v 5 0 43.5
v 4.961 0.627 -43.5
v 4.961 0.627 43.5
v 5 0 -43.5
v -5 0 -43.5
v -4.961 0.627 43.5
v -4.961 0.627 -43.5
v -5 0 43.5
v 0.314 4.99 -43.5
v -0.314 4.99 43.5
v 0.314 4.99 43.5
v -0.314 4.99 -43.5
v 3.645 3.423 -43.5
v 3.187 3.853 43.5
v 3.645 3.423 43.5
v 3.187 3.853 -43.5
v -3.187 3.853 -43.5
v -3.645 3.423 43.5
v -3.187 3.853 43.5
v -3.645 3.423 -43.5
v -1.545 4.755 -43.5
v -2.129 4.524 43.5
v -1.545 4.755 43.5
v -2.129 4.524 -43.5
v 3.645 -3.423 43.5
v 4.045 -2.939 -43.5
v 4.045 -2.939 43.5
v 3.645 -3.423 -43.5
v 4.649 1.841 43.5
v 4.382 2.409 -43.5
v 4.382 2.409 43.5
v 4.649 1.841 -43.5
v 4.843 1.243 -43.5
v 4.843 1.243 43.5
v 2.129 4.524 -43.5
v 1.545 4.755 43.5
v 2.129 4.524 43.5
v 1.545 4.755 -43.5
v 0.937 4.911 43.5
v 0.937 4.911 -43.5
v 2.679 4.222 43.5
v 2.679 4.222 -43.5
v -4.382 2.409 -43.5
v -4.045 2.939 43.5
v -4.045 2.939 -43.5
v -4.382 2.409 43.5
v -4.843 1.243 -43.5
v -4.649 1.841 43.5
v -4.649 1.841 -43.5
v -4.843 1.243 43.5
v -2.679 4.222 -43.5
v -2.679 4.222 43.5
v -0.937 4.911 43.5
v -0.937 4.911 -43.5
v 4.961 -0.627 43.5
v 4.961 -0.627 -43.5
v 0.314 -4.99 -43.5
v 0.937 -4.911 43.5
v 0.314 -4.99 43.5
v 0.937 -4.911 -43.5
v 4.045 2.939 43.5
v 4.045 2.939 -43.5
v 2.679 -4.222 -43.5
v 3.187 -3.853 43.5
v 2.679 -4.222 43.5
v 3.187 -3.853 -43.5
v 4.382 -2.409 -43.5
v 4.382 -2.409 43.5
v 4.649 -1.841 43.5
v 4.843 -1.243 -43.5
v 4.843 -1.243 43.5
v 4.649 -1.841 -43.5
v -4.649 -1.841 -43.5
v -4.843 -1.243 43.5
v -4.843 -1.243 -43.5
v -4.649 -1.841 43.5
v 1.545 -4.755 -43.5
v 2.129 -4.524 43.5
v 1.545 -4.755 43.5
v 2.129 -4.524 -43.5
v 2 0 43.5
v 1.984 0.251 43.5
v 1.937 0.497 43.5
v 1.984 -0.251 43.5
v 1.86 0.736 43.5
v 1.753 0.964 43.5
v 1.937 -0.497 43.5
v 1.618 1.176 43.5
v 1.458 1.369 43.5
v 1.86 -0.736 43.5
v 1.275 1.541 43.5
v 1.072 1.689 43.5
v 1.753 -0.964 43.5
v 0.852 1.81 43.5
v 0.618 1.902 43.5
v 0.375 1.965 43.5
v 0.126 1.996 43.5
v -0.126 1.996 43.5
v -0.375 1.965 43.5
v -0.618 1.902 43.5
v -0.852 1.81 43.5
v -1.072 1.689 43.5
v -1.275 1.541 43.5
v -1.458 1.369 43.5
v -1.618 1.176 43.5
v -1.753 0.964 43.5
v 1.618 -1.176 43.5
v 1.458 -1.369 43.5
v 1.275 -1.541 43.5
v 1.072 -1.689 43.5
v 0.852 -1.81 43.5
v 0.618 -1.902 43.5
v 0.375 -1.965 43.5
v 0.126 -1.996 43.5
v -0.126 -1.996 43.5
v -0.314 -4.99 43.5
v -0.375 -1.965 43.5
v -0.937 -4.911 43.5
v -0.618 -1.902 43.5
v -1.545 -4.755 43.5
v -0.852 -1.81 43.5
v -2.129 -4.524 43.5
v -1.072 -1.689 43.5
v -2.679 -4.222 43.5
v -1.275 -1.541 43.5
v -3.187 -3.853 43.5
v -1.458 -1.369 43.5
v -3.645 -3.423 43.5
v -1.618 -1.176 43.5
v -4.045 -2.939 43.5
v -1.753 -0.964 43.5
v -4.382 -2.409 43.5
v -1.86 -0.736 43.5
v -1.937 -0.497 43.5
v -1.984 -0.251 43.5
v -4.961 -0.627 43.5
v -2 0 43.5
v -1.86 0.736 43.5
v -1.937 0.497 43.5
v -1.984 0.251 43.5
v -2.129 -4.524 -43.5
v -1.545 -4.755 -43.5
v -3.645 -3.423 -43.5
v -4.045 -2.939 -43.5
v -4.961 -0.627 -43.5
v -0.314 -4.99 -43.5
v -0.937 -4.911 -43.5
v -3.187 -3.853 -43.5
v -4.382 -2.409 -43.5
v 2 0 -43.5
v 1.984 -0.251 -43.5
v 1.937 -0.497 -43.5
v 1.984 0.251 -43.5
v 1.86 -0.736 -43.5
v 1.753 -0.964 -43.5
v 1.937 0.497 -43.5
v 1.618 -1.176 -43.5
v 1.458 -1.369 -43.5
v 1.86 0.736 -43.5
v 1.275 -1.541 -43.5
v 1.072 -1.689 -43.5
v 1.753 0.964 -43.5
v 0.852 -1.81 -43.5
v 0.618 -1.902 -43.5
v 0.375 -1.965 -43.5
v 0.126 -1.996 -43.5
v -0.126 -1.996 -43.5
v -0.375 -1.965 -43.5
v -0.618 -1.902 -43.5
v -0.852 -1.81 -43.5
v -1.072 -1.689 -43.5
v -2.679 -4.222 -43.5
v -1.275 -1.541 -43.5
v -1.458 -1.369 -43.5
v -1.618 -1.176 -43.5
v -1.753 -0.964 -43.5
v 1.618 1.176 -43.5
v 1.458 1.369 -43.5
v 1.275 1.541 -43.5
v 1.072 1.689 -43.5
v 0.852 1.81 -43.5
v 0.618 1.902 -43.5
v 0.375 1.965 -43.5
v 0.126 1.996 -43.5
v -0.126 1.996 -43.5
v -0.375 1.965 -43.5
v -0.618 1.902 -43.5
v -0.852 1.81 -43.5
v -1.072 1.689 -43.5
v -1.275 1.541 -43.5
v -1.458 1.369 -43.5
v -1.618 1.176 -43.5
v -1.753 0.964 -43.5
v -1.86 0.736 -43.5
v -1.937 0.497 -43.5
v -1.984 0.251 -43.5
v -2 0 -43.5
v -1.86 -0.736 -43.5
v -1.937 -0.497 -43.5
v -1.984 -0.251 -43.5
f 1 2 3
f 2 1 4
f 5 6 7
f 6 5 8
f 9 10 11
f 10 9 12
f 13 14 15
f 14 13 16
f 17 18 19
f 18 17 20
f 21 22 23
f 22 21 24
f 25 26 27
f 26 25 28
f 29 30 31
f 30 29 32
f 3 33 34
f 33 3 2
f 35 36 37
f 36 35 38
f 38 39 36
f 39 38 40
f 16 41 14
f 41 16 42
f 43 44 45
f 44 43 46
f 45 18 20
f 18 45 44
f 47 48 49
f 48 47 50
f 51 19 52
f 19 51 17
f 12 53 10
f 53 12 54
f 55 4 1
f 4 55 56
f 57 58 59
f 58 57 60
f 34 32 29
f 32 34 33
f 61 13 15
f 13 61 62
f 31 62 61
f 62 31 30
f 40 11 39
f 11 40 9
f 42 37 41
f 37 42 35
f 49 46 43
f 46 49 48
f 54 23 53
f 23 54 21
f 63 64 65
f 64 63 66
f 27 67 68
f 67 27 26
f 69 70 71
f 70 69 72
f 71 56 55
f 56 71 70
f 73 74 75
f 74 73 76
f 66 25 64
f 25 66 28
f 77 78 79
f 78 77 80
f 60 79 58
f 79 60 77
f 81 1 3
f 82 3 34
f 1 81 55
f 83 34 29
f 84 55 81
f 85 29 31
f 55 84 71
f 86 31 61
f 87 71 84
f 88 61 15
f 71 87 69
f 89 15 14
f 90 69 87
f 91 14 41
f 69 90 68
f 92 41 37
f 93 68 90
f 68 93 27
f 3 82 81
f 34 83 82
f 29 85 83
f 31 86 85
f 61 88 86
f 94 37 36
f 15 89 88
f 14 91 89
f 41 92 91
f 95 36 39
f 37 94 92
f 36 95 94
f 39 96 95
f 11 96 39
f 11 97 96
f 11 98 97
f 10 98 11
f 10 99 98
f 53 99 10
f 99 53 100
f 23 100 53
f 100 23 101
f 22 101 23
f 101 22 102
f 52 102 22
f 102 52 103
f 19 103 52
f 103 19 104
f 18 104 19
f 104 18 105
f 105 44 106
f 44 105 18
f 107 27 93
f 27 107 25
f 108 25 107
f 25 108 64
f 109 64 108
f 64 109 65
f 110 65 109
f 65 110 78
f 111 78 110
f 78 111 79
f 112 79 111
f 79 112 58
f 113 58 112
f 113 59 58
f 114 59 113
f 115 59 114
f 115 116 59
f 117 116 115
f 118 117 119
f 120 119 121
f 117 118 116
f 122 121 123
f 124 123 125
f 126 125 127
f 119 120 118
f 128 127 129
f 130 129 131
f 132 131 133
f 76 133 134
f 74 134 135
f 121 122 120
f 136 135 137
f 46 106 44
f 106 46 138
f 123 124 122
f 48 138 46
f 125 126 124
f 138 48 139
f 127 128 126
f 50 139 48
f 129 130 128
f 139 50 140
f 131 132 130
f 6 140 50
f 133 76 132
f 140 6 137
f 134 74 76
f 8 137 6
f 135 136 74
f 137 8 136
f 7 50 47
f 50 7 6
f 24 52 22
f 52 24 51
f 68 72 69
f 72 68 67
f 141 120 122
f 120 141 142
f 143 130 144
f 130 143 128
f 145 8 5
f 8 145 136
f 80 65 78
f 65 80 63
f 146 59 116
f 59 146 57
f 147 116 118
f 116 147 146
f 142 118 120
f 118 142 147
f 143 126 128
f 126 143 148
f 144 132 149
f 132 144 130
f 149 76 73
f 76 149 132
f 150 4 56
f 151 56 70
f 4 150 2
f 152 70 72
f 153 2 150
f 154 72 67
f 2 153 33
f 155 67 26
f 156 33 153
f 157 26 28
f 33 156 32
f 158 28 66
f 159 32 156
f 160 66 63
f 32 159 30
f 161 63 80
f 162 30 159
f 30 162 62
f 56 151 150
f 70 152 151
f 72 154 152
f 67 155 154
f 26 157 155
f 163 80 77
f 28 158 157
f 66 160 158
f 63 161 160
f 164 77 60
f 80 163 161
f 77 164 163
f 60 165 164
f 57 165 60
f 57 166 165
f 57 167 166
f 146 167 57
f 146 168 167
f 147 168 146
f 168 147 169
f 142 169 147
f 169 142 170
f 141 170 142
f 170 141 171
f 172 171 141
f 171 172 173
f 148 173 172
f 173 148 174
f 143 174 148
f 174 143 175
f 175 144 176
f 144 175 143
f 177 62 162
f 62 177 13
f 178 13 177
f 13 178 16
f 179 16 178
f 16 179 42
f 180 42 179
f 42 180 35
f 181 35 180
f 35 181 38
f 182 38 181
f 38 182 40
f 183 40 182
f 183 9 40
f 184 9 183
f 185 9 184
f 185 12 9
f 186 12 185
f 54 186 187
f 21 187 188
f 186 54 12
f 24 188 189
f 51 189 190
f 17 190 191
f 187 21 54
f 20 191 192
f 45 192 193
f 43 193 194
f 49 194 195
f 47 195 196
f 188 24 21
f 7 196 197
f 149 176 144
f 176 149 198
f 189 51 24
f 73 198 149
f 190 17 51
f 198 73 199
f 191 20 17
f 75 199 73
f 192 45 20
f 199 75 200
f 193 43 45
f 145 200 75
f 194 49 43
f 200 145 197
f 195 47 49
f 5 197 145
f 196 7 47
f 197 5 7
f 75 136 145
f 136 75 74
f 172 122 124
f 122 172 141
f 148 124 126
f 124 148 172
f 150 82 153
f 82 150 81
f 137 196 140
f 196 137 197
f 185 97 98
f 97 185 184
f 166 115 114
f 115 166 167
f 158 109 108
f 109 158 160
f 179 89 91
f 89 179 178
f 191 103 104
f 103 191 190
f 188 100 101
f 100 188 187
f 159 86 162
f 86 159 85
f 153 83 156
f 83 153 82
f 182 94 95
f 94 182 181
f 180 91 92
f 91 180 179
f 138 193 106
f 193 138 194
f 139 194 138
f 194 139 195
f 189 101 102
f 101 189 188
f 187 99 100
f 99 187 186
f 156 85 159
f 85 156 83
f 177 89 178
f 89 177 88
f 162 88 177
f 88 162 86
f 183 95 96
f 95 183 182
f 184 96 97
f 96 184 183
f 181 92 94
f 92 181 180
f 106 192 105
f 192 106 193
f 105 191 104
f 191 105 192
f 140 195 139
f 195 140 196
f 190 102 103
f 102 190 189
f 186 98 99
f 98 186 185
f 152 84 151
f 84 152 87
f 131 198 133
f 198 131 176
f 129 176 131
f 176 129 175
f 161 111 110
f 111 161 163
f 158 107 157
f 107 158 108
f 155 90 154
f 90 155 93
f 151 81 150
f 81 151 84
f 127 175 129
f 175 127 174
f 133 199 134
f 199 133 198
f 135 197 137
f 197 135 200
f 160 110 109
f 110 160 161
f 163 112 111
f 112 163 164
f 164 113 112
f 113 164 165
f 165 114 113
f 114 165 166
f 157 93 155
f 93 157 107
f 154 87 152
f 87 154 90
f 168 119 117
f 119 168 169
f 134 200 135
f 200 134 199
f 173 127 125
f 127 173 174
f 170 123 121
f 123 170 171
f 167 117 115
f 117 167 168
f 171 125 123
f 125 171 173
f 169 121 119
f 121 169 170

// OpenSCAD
$fn = 50;


difference() {
	union() {
		translate(v = [0, 0, -43.5000000000]) {
			cylinder(h = 87, r = 5.0000000000);
		}
	}
	union() {
		translate(v = [0, 0, -100.0000000000]) {
			cylinder(h = 200, r = 2.0000000000);
		}
	}
}
